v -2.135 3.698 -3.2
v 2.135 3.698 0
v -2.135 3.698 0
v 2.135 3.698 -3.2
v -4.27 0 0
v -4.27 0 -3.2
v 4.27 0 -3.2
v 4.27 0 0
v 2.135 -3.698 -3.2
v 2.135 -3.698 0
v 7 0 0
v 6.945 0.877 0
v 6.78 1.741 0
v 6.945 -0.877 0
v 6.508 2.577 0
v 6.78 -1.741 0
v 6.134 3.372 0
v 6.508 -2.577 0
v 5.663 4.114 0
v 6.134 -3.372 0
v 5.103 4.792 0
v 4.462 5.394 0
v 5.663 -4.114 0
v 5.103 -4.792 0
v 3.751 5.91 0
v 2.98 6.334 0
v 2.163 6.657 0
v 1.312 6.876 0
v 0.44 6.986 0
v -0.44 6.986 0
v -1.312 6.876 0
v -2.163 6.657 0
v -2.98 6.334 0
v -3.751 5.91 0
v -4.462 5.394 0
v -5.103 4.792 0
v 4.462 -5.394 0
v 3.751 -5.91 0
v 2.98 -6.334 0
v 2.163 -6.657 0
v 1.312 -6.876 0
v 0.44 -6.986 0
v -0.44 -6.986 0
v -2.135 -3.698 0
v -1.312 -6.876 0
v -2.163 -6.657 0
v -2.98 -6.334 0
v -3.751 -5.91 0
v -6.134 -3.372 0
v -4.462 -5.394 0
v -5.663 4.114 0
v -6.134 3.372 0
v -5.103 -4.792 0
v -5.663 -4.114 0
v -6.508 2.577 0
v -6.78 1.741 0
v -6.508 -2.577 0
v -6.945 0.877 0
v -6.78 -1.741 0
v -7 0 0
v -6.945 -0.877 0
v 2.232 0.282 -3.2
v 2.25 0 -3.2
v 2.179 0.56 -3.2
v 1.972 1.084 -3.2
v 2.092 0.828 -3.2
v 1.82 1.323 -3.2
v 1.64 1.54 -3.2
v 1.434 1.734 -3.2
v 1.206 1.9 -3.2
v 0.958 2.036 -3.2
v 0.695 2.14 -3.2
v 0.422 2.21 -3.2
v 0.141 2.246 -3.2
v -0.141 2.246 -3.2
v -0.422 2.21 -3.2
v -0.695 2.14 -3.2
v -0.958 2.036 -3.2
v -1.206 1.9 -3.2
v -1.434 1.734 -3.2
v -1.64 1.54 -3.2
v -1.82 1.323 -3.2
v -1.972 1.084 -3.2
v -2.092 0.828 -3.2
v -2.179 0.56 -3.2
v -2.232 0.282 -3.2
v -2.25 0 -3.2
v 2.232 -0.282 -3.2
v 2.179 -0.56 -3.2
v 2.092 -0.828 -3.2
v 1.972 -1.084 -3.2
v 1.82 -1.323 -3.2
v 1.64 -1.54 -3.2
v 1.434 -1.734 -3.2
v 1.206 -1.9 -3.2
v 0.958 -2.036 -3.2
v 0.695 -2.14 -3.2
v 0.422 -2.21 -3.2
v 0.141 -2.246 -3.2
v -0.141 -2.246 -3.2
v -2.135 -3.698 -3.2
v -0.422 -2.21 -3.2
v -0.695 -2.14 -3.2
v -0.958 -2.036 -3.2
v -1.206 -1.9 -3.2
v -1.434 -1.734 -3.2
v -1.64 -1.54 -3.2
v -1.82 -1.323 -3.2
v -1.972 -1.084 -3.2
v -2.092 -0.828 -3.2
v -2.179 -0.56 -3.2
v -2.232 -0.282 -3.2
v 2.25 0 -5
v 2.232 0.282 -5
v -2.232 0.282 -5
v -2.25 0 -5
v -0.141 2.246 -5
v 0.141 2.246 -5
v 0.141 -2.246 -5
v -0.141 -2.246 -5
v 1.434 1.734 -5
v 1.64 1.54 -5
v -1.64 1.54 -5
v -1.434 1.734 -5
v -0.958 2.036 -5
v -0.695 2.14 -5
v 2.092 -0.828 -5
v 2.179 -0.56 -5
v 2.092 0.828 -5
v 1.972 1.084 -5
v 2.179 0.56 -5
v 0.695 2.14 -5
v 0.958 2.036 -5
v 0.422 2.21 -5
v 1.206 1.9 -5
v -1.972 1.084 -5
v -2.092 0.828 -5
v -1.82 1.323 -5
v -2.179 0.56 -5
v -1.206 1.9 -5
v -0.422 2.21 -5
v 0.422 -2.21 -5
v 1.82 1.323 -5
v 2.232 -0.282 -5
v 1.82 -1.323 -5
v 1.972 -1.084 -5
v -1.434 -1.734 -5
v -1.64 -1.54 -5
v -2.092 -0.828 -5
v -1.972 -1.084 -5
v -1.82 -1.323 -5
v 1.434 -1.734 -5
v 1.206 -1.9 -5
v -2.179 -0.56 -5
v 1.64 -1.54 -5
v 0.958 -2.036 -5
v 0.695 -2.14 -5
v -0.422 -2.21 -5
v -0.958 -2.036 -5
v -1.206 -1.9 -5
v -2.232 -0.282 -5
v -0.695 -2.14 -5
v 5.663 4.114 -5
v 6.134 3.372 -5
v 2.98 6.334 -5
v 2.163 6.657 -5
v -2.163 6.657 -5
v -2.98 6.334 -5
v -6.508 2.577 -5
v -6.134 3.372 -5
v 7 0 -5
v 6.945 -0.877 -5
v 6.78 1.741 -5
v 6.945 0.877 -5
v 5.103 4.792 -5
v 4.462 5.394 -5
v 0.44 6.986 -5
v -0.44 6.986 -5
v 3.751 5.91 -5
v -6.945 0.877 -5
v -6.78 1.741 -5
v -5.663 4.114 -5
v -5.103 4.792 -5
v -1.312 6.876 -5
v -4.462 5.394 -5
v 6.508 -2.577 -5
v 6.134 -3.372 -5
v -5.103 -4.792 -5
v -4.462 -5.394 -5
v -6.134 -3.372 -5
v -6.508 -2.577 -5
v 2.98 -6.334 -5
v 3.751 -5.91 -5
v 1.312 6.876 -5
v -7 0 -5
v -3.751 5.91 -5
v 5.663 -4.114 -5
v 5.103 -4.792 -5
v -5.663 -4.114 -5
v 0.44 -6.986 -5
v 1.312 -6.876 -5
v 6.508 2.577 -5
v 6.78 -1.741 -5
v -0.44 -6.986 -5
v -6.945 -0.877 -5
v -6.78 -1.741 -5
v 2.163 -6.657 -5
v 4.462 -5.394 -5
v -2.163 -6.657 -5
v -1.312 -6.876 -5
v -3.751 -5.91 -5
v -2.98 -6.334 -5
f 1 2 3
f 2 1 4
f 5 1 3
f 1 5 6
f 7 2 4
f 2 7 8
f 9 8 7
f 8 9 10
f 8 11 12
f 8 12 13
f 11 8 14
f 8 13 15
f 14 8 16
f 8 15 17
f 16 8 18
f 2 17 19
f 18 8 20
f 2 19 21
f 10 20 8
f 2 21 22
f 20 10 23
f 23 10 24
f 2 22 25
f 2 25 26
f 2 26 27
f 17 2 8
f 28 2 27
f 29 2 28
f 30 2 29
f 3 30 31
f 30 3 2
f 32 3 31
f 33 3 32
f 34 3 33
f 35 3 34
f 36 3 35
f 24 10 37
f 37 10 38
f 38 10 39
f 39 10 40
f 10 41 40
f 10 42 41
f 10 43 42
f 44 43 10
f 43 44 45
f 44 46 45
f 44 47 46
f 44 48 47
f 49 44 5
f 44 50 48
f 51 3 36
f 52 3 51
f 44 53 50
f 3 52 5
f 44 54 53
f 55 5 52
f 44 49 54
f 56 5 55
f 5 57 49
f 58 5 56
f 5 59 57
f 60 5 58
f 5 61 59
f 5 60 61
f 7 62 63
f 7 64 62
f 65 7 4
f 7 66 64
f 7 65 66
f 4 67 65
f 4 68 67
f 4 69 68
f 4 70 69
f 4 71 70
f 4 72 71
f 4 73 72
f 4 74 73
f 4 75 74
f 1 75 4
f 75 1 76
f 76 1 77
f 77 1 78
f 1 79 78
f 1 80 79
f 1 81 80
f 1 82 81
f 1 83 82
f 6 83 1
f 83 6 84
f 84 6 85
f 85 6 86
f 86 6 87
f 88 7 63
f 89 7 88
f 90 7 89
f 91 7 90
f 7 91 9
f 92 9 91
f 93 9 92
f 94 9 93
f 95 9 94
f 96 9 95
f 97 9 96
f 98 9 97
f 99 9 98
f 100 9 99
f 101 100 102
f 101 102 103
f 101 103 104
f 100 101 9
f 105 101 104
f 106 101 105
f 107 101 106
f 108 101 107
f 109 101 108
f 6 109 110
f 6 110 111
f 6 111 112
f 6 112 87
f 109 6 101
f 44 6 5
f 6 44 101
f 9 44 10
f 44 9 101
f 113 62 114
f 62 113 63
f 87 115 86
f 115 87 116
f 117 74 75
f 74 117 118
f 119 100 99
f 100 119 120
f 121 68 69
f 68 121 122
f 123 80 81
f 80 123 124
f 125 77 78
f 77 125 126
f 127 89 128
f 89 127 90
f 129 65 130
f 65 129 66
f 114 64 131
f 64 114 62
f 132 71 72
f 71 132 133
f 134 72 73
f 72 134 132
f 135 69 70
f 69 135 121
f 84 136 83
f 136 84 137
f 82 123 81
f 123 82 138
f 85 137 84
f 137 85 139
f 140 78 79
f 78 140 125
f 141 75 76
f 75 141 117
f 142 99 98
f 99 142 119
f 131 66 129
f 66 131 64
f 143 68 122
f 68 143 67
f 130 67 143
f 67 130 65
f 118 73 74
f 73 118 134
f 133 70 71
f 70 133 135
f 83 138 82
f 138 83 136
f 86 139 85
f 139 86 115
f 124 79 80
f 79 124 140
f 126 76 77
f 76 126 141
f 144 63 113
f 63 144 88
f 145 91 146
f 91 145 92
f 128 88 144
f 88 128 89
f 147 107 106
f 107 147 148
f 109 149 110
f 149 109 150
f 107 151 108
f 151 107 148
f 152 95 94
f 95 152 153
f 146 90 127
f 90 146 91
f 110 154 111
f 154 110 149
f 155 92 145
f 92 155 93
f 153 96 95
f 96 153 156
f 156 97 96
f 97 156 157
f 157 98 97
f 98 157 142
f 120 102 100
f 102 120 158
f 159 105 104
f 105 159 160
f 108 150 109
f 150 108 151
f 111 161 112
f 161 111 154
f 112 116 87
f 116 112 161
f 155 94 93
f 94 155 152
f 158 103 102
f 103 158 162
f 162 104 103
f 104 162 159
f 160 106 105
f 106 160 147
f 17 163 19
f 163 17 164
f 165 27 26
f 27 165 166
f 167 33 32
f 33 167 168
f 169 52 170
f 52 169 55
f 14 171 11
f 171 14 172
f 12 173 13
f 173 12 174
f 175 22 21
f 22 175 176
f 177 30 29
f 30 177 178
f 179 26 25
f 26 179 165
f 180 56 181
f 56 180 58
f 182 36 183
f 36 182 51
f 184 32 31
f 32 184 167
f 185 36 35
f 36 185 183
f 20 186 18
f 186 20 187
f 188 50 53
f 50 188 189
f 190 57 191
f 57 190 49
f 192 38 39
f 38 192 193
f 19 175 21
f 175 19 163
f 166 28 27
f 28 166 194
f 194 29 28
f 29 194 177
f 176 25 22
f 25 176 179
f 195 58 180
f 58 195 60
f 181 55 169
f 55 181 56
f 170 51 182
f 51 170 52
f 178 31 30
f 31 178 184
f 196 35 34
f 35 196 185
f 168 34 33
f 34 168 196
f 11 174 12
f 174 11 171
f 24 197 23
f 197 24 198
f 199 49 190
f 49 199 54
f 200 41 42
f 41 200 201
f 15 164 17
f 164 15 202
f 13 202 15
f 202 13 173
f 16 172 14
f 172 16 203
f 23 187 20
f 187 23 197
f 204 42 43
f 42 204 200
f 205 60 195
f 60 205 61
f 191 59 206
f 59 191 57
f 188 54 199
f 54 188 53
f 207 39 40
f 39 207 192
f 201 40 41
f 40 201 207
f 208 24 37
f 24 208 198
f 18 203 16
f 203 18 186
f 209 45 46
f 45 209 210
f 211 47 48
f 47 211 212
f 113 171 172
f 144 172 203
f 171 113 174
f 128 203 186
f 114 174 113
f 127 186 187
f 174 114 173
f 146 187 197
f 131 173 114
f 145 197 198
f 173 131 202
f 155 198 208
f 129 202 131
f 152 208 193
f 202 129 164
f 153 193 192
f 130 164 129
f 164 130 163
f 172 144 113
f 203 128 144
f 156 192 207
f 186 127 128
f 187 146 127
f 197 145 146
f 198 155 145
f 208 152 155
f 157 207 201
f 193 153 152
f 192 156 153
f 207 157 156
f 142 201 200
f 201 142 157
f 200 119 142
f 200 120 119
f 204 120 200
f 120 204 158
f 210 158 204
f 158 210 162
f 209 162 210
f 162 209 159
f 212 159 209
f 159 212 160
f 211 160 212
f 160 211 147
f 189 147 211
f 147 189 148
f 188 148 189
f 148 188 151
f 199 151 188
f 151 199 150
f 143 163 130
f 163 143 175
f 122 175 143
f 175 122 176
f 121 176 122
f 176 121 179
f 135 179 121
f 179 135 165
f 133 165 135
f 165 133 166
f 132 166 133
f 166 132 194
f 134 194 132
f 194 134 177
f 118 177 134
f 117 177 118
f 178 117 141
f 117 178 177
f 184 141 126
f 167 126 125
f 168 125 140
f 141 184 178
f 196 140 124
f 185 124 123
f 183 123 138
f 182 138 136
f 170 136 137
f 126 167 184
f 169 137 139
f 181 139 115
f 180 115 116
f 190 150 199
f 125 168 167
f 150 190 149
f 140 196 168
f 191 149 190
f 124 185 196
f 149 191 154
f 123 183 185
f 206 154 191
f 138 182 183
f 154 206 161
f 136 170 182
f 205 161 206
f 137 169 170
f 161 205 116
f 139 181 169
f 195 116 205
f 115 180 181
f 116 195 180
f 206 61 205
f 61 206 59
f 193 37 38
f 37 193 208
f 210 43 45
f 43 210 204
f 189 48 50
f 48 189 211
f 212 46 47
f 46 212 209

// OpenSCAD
$fn = 50;


difference() {
	union() {
		translate(v = [0, 0, -5.0000000000]) {
			cylinder(h = 5.0000000000, r = 7.0000000000);
		}
	}
	union() {
		translate(v = [0, 0, 0]) {
			rotate(a = [0, 0, 0]) {
				difference() {
					union() {
						translate(v = [0, 0, -3.2000000000]) {
							linear_extrude(height = 3.2000000000) {
								polygon(points = [[4.2698000000, 0.0000000000], [2.1349000000, 3.6977552691], [-2.1349000000, 3.6977552691], [-4.2698000000, 0.0000000000], [-2.1349000000, -3.6977552691], [2.1349000000, -3.6977552691]]);
							}
						}
					}
					union();
				}
			}
		}
		#translate(v = [0, 0, -100.0000000000]) {
			cylinder(h = 200, r = 2.2500000000);
		}
	}
}
